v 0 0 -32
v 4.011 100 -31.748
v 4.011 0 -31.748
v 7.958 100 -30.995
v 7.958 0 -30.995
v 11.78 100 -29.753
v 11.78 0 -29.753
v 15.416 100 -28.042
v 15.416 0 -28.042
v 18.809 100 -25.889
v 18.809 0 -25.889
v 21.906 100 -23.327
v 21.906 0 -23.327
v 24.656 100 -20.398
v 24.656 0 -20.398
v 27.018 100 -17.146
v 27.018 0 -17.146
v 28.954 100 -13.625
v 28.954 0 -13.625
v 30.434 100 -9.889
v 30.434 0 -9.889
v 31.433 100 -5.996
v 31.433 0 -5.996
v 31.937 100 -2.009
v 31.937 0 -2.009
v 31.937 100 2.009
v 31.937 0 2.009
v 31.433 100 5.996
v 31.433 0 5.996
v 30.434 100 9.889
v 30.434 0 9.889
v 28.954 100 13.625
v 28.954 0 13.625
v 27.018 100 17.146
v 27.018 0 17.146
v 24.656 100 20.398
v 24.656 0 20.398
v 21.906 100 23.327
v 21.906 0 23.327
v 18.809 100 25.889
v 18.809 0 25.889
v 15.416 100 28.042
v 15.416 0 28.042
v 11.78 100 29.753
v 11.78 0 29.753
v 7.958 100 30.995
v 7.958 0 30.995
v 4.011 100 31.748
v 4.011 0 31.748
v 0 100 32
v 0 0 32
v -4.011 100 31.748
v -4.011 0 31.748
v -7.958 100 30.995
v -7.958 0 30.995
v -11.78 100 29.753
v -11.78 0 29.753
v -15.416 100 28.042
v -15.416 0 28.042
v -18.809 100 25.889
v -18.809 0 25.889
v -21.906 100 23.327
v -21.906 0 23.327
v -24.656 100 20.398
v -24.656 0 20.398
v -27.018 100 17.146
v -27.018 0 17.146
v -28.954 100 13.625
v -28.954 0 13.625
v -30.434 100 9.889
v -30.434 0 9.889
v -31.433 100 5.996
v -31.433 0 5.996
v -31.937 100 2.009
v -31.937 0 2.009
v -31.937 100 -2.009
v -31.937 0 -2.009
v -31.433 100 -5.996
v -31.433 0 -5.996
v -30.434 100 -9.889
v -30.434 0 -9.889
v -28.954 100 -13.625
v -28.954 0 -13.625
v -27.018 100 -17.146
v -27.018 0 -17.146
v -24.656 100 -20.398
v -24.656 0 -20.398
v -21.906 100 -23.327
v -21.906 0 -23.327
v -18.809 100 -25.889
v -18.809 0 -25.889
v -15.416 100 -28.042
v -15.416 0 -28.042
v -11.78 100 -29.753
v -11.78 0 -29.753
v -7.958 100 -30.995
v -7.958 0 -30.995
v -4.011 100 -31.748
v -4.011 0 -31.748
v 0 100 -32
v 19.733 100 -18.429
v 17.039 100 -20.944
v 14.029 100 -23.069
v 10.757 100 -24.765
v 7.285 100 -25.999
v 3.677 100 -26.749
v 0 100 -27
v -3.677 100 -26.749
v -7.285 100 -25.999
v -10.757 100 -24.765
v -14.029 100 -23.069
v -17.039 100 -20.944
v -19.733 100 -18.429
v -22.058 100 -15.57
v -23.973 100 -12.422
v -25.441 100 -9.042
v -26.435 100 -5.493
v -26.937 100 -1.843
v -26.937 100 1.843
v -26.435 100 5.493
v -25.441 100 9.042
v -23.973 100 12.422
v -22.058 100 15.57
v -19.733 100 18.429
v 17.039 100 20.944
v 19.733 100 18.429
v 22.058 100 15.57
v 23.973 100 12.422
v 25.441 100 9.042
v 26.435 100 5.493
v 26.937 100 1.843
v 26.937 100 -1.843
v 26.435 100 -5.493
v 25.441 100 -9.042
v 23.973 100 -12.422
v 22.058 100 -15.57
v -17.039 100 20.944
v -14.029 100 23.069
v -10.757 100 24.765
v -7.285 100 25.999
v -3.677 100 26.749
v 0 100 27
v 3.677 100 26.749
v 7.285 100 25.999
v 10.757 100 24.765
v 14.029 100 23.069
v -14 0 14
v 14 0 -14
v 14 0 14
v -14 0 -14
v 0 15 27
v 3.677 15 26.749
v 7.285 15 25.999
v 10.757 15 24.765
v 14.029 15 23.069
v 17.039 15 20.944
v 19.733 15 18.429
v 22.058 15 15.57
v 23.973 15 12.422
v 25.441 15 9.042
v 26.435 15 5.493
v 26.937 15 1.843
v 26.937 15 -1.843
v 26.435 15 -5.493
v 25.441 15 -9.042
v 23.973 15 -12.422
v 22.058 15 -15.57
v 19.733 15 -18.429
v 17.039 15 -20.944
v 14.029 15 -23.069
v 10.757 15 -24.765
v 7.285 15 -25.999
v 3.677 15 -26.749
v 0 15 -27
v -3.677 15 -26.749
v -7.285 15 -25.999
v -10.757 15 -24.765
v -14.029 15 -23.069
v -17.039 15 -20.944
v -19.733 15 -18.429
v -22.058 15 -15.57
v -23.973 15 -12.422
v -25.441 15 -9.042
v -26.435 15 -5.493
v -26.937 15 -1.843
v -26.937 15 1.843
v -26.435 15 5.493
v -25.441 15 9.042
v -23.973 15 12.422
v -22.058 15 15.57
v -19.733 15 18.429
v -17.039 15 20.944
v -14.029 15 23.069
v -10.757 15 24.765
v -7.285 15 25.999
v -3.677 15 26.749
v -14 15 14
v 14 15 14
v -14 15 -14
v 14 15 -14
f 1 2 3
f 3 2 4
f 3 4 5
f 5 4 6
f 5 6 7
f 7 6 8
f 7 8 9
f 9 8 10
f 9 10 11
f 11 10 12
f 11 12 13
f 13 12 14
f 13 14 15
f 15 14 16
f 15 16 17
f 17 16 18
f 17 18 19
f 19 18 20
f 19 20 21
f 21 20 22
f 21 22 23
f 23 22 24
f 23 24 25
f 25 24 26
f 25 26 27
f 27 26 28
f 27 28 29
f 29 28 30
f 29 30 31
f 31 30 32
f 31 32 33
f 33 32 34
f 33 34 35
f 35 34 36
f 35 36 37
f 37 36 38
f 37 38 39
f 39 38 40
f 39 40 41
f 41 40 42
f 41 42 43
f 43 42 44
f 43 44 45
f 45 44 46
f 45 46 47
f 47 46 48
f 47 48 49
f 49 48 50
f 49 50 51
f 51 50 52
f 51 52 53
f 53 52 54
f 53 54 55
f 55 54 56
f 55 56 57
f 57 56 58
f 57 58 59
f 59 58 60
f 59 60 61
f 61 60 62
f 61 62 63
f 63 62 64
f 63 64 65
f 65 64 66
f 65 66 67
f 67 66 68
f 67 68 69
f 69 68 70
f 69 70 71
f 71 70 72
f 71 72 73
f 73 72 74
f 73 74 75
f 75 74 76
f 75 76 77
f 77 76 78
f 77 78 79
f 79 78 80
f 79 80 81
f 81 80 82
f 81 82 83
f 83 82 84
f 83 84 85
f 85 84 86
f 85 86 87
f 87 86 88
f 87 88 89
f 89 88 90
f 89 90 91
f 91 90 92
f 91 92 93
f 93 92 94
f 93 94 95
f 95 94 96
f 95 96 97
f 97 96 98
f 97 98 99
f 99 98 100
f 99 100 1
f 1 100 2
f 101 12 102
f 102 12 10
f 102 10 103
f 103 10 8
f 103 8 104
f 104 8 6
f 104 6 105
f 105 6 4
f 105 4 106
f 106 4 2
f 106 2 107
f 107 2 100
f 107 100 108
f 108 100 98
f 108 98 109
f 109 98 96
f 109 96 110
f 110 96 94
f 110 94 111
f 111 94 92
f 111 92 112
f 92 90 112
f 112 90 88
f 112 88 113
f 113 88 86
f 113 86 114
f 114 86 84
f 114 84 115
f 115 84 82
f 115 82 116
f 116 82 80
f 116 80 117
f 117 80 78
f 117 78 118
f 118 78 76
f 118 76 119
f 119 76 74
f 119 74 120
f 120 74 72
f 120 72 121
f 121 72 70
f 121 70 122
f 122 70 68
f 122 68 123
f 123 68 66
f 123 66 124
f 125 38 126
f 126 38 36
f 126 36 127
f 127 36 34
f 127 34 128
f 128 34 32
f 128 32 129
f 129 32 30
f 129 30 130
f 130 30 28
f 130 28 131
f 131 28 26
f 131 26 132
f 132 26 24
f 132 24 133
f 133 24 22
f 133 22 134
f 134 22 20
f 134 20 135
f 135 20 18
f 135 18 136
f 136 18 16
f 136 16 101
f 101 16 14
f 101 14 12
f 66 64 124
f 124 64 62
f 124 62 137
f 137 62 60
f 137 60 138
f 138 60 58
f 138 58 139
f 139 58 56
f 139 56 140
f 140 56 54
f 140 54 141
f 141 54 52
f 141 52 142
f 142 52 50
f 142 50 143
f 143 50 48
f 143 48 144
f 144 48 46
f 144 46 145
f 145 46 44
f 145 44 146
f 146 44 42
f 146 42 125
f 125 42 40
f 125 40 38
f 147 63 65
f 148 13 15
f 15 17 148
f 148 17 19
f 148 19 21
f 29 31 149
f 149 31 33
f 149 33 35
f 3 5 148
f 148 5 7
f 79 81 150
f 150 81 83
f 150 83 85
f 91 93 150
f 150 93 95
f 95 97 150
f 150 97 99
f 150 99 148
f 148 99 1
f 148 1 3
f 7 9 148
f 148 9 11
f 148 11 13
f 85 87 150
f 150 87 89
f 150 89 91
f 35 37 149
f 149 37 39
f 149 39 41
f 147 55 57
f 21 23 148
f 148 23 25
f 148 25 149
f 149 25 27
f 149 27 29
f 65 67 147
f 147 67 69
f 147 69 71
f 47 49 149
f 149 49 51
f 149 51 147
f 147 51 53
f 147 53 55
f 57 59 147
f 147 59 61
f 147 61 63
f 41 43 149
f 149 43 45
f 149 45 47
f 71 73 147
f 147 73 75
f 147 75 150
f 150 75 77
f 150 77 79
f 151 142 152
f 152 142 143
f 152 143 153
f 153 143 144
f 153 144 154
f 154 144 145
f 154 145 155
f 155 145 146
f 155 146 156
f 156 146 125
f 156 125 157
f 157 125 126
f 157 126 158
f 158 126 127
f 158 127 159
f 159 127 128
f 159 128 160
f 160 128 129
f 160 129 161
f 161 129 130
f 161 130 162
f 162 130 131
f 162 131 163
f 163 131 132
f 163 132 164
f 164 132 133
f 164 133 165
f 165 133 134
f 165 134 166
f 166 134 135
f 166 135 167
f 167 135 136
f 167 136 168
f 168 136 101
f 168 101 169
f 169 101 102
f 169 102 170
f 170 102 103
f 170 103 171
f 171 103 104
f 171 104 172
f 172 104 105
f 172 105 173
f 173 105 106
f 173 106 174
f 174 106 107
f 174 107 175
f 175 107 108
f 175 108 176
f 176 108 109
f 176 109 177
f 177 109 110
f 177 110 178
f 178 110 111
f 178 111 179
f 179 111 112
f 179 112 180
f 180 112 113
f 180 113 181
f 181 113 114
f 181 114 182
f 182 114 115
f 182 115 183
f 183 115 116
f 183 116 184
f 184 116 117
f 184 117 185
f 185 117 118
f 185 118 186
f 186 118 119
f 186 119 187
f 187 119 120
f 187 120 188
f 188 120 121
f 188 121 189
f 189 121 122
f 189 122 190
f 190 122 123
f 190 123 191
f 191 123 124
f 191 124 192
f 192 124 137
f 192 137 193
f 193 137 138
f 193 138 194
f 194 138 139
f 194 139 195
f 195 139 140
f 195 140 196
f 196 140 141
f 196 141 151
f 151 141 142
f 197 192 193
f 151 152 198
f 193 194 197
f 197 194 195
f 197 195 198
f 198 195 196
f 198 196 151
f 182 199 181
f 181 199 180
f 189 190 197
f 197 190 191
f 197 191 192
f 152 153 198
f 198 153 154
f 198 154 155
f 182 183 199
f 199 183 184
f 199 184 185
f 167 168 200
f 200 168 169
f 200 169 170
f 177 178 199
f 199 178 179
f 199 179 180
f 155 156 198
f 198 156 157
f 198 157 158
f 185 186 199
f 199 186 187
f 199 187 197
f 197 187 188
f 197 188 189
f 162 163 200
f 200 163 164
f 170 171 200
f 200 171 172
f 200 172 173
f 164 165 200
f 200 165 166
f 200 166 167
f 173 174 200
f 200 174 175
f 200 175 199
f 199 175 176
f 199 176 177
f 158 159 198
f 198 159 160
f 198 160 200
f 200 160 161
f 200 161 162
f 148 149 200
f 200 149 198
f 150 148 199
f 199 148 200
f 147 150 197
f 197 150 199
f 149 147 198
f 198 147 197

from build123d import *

# Parameters (mm, degrees)
SKETCH1_R           = 32
BOSS_EXTRUDE1_DEPTH = 100
SKETCH2_R           = 27
CUT_EXTRUDE1_DEPTH  = 85
SKETCH3_W           = 28
SKETCH3_H           = 28
CUT_EXTRUDE2_DEPTH  = 25


with BuildPart() as part:
    # Sketch1 → Boss-Extrude1 (new body)
    with BuildSketch(Plane(origin=(0, 0, 0), x_dir=(1, 0, 0), z_dir=(0, 1, 0))):
        with Locations(Location((0, 0, 0), (0, 0, 270))):
            Circle(SKETCH1_R)
    extrude(amount=BOSS_EXTRUDE1_DEPTH)

    # Sketch2 → Cut-Extrude1 (cut)
    with BuildSketch(Plane(origin=(0, 100, 0), x_dir=(1, 0, 0), z_dir=(0, 1, 0))):
        with Locations(Location((0, 0, 0), (0, 0, 270))):
            Circle(SKETCH2_R)
    extrude(amount=-CUT_EXTRUDE1_DEPTH, mode=Mode.SUBTRACT)

    # Sketch3 → Cut-Extrude2 (cut)
    with BuildSketch(Plane.XZ):
        Rectangle(SKETCH3_W, SKETCH3_H)
    extrude(amount=-CUT_EXTRUDE2_DEPTH, mode=Mode.SUBTRACT)


solid = part.part
